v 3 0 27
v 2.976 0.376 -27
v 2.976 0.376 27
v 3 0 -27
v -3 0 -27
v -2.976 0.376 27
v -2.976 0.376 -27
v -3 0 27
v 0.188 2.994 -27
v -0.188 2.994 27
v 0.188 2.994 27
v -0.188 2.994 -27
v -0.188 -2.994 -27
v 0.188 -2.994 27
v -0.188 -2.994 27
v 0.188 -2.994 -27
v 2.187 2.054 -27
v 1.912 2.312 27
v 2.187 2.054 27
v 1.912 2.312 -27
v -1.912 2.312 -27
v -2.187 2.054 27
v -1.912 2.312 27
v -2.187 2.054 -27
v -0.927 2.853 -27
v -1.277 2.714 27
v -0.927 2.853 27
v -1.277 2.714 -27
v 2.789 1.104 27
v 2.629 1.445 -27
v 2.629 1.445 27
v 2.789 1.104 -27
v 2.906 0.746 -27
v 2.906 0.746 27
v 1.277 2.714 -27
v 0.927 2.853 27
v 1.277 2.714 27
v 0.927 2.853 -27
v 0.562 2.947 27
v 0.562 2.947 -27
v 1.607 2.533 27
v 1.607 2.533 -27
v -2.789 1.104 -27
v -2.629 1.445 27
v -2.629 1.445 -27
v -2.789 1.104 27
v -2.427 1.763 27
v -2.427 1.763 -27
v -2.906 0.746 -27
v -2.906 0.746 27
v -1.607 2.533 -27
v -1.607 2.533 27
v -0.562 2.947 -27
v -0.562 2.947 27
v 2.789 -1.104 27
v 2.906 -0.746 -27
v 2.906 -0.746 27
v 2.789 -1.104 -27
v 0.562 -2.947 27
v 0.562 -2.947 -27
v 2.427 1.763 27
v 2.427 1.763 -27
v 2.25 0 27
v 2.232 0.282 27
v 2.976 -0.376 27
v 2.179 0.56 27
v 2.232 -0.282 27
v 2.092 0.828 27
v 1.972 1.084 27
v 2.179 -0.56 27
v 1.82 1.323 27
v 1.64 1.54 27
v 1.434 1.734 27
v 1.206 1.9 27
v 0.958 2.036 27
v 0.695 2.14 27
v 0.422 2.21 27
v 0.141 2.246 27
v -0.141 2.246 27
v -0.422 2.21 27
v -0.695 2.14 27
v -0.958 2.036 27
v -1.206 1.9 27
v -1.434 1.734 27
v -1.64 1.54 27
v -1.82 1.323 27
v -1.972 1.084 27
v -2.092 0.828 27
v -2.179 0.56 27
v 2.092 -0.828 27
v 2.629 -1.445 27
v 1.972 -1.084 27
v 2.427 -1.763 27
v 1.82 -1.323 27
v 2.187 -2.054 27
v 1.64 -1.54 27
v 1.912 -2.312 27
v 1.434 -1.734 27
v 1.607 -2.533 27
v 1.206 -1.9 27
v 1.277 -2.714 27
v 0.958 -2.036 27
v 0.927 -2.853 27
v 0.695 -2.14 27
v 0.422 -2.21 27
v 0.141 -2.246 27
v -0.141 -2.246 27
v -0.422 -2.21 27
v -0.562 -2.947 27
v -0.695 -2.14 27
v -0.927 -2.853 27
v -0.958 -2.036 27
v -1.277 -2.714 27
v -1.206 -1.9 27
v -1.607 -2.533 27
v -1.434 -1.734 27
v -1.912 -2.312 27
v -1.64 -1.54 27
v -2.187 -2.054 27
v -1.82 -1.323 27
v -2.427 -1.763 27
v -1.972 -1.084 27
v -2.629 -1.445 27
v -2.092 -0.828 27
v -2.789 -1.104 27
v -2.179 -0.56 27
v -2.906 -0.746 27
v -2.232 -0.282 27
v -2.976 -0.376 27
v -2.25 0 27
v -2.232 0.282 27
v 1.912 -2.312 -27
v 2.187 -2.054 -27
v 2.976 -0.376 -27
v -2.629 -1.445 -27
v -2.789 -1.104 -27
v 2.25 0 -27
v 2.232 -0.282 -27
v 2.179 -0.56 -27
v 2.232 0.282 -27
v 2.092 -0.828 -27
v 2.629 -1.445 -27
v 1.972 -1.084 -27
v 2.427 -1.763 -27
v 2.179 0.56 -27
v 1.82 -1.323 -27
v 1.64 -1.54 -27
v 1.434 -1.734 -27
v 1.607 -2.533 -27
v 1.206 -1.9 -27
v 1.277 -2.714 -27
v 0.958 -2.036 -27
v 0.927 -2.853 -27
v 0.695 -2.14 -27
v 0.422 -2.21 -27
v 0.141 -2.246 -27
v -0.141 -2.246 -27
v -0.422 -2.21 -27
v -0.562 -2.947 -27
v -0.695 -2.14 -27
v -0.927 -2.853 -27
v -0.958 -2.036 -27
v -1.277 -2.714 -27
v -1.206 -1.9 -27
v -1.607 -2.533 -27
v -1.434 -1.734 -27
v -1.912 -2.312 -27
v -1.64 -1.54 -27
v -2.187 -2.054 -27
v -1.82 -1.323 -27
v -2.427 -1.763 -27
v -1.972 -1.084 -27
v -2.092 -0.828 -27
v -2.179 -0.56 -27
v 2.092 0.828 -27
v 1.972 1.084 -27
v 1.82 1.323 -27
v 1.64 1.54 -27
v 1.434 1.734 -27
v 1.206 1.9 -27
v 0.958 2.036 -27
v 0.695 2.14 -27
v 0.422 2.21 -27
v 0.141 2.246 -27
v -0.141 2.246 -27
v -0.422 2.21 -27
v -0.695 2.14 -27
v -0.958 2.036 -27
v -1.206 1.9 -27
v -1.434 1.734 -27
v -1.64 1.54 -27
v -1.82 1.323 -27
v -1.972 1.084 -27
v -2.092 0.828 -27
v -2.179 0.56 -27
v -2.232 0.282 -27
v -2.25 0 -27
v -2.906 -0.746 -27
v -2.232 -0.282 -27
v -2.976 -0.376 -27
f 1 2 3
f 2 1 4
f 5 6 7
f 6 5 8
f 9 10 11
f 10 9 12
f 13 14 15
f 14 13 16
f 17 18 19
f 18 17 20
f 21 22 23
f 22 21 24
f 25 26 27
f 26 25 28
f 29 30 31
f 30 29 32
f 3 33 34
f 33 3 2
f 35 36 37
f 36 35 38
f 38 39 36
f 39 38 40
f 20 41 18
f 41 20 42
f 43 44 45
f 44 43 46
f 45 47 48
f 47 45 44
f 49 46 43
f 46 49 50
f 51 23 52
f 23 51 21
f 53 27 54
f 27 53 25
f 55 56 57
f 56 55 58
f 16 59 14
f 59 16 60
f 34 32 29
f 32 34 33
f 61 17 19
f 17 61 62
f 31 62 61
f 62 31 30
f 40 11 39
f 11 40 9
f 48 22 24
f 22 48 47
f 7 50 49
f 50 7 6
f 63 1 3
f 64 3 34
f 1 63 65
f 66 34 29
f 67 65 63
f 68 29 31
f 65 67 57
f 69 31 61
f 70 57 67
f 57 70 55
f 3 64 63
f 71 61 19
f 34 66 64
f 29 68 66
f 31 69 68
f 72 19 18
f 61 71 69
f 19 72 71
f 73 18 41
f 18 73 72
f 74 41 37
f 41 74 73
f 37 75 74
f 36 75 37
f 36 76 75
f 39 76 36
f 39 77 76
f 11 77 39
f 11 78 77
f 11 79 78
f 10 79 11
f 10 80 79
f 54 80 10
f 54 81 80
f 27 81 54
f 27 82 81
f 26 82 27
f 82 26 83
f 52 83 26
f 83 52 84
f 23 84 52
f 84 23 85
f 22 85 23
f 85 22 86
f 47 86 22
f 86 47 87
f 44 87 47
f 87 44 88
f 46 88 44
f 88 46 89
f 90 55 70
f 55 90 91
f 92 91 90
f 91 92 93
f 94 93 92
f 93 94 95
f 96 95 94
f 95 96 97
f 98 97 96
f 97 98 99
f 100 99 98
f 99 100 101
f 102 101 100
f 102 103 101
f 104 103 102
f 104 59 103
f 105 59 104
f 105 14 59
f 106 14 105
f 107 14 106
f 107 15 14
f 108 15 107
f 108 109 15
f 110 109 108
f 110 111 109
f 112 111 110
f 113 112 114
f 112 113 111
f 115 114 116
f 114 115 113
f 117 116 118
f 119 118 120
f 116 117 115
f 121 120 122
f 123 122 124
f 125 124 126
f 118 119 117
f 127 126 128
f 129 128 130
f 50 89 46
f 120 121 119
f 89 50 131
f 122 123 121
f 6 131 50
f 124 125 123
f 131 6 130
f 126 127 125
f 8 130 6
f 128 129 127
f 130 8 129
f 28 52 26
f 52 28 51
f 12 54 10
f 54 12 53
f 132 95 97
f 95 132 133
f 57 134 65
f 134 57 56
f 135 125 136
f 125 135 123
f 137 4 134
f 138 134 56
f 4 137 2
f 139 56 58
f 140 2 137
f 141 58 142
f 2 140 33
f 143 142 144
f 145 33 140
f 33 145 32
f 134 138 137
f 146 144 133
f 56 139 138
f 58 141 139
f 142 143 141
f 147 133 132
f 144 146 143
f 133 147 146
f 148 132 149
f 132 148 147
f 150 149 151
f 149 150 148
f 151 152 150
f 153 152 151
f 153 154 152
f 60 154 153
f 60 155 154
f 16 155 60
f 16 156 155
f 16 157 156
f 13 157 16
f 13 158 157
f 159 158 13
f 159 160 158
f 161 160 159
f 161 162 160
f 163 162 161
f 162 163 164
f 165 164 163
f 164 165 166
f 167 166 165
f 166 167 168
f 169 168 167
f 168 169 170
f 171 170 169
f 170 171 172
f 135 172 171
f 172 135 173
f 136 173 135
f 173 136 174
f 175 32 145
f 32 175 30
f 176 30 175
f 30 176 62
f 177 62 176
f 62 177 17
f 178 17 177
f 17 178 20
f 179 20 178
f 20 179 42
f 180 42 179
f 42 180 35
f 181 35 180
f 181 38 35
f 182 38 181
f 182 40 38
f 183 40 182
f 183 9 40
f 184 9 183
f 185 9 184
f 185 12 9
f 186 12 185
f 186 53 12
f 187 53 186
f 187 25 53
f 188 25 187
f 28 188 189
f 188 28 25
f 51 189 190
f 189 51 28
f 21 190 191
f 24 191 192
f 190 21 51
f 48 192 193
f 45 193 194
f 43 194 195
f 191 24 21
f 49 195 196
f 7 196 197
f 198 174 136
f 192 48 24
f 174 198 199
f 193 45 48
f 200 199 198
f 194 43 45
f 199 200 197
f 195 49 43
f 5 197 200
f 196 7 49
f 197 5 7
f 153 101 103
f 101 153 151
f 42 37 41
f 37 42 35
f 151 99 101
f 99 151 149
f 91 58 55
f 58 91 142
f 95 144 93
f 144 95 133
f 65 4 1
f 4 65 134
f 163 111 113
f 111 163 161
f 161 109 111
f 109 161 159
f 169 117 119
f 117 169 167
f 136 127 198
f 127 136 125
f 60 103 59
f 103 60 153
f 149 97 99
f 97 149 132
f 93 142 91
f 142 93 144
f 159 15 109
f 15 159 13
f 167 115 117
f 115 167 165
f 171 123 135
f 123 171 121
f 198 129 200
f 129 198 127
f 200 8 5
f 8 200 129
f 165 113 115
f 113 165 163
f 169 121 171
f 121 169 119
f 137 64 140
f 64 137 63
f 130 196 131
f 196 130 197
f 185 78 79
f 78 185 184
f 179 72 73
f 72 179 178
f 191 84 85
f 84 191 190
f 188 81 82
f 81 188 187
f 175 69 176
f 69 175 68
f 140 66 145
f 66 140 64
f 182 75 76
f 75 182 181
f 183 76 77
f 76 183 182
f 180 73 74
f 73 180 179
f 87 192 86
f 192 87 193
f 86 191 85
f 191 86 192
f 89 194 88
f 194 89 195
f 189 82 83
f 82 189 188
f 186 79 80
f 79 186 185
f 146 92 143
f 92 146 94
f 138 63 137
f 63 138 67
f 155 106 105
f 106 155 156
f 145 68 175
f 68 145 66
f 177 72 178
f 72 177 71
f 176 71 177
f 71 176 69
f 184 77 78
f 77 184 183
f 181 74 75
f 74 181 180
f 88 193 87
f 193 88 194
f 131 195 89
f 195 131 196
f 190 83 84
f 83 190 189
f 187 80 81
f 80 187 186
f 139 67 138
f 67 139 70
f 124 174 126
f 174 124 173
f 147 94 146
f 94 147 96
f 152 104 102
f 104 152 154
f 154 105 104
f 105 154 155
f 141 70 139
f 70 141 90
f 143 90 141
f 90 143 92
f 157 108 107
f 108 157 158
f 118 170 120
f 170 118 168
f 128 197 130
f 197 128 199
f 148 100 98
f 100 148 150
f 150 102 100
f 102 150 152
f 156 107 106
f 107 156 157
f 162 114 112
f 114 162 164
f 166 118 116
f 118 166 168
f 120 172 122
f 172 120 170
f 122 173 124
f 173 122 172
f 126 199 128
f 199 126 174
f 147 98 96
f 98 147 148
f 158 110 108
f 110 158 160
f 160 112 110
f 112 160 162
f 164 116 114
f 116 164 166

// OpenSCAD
$fn = 50;


difference() {
	union() {
		translate(v = [0, 0, -27.0000000000]) {
			cylinder(h = 54, r = 3.0000000000);
		}
	}
	union() {
		translate(v = [0, 0, -100.0000000000]) {
			cylinder(h = 200, r = 2.2500000000);
		}
	}
}
